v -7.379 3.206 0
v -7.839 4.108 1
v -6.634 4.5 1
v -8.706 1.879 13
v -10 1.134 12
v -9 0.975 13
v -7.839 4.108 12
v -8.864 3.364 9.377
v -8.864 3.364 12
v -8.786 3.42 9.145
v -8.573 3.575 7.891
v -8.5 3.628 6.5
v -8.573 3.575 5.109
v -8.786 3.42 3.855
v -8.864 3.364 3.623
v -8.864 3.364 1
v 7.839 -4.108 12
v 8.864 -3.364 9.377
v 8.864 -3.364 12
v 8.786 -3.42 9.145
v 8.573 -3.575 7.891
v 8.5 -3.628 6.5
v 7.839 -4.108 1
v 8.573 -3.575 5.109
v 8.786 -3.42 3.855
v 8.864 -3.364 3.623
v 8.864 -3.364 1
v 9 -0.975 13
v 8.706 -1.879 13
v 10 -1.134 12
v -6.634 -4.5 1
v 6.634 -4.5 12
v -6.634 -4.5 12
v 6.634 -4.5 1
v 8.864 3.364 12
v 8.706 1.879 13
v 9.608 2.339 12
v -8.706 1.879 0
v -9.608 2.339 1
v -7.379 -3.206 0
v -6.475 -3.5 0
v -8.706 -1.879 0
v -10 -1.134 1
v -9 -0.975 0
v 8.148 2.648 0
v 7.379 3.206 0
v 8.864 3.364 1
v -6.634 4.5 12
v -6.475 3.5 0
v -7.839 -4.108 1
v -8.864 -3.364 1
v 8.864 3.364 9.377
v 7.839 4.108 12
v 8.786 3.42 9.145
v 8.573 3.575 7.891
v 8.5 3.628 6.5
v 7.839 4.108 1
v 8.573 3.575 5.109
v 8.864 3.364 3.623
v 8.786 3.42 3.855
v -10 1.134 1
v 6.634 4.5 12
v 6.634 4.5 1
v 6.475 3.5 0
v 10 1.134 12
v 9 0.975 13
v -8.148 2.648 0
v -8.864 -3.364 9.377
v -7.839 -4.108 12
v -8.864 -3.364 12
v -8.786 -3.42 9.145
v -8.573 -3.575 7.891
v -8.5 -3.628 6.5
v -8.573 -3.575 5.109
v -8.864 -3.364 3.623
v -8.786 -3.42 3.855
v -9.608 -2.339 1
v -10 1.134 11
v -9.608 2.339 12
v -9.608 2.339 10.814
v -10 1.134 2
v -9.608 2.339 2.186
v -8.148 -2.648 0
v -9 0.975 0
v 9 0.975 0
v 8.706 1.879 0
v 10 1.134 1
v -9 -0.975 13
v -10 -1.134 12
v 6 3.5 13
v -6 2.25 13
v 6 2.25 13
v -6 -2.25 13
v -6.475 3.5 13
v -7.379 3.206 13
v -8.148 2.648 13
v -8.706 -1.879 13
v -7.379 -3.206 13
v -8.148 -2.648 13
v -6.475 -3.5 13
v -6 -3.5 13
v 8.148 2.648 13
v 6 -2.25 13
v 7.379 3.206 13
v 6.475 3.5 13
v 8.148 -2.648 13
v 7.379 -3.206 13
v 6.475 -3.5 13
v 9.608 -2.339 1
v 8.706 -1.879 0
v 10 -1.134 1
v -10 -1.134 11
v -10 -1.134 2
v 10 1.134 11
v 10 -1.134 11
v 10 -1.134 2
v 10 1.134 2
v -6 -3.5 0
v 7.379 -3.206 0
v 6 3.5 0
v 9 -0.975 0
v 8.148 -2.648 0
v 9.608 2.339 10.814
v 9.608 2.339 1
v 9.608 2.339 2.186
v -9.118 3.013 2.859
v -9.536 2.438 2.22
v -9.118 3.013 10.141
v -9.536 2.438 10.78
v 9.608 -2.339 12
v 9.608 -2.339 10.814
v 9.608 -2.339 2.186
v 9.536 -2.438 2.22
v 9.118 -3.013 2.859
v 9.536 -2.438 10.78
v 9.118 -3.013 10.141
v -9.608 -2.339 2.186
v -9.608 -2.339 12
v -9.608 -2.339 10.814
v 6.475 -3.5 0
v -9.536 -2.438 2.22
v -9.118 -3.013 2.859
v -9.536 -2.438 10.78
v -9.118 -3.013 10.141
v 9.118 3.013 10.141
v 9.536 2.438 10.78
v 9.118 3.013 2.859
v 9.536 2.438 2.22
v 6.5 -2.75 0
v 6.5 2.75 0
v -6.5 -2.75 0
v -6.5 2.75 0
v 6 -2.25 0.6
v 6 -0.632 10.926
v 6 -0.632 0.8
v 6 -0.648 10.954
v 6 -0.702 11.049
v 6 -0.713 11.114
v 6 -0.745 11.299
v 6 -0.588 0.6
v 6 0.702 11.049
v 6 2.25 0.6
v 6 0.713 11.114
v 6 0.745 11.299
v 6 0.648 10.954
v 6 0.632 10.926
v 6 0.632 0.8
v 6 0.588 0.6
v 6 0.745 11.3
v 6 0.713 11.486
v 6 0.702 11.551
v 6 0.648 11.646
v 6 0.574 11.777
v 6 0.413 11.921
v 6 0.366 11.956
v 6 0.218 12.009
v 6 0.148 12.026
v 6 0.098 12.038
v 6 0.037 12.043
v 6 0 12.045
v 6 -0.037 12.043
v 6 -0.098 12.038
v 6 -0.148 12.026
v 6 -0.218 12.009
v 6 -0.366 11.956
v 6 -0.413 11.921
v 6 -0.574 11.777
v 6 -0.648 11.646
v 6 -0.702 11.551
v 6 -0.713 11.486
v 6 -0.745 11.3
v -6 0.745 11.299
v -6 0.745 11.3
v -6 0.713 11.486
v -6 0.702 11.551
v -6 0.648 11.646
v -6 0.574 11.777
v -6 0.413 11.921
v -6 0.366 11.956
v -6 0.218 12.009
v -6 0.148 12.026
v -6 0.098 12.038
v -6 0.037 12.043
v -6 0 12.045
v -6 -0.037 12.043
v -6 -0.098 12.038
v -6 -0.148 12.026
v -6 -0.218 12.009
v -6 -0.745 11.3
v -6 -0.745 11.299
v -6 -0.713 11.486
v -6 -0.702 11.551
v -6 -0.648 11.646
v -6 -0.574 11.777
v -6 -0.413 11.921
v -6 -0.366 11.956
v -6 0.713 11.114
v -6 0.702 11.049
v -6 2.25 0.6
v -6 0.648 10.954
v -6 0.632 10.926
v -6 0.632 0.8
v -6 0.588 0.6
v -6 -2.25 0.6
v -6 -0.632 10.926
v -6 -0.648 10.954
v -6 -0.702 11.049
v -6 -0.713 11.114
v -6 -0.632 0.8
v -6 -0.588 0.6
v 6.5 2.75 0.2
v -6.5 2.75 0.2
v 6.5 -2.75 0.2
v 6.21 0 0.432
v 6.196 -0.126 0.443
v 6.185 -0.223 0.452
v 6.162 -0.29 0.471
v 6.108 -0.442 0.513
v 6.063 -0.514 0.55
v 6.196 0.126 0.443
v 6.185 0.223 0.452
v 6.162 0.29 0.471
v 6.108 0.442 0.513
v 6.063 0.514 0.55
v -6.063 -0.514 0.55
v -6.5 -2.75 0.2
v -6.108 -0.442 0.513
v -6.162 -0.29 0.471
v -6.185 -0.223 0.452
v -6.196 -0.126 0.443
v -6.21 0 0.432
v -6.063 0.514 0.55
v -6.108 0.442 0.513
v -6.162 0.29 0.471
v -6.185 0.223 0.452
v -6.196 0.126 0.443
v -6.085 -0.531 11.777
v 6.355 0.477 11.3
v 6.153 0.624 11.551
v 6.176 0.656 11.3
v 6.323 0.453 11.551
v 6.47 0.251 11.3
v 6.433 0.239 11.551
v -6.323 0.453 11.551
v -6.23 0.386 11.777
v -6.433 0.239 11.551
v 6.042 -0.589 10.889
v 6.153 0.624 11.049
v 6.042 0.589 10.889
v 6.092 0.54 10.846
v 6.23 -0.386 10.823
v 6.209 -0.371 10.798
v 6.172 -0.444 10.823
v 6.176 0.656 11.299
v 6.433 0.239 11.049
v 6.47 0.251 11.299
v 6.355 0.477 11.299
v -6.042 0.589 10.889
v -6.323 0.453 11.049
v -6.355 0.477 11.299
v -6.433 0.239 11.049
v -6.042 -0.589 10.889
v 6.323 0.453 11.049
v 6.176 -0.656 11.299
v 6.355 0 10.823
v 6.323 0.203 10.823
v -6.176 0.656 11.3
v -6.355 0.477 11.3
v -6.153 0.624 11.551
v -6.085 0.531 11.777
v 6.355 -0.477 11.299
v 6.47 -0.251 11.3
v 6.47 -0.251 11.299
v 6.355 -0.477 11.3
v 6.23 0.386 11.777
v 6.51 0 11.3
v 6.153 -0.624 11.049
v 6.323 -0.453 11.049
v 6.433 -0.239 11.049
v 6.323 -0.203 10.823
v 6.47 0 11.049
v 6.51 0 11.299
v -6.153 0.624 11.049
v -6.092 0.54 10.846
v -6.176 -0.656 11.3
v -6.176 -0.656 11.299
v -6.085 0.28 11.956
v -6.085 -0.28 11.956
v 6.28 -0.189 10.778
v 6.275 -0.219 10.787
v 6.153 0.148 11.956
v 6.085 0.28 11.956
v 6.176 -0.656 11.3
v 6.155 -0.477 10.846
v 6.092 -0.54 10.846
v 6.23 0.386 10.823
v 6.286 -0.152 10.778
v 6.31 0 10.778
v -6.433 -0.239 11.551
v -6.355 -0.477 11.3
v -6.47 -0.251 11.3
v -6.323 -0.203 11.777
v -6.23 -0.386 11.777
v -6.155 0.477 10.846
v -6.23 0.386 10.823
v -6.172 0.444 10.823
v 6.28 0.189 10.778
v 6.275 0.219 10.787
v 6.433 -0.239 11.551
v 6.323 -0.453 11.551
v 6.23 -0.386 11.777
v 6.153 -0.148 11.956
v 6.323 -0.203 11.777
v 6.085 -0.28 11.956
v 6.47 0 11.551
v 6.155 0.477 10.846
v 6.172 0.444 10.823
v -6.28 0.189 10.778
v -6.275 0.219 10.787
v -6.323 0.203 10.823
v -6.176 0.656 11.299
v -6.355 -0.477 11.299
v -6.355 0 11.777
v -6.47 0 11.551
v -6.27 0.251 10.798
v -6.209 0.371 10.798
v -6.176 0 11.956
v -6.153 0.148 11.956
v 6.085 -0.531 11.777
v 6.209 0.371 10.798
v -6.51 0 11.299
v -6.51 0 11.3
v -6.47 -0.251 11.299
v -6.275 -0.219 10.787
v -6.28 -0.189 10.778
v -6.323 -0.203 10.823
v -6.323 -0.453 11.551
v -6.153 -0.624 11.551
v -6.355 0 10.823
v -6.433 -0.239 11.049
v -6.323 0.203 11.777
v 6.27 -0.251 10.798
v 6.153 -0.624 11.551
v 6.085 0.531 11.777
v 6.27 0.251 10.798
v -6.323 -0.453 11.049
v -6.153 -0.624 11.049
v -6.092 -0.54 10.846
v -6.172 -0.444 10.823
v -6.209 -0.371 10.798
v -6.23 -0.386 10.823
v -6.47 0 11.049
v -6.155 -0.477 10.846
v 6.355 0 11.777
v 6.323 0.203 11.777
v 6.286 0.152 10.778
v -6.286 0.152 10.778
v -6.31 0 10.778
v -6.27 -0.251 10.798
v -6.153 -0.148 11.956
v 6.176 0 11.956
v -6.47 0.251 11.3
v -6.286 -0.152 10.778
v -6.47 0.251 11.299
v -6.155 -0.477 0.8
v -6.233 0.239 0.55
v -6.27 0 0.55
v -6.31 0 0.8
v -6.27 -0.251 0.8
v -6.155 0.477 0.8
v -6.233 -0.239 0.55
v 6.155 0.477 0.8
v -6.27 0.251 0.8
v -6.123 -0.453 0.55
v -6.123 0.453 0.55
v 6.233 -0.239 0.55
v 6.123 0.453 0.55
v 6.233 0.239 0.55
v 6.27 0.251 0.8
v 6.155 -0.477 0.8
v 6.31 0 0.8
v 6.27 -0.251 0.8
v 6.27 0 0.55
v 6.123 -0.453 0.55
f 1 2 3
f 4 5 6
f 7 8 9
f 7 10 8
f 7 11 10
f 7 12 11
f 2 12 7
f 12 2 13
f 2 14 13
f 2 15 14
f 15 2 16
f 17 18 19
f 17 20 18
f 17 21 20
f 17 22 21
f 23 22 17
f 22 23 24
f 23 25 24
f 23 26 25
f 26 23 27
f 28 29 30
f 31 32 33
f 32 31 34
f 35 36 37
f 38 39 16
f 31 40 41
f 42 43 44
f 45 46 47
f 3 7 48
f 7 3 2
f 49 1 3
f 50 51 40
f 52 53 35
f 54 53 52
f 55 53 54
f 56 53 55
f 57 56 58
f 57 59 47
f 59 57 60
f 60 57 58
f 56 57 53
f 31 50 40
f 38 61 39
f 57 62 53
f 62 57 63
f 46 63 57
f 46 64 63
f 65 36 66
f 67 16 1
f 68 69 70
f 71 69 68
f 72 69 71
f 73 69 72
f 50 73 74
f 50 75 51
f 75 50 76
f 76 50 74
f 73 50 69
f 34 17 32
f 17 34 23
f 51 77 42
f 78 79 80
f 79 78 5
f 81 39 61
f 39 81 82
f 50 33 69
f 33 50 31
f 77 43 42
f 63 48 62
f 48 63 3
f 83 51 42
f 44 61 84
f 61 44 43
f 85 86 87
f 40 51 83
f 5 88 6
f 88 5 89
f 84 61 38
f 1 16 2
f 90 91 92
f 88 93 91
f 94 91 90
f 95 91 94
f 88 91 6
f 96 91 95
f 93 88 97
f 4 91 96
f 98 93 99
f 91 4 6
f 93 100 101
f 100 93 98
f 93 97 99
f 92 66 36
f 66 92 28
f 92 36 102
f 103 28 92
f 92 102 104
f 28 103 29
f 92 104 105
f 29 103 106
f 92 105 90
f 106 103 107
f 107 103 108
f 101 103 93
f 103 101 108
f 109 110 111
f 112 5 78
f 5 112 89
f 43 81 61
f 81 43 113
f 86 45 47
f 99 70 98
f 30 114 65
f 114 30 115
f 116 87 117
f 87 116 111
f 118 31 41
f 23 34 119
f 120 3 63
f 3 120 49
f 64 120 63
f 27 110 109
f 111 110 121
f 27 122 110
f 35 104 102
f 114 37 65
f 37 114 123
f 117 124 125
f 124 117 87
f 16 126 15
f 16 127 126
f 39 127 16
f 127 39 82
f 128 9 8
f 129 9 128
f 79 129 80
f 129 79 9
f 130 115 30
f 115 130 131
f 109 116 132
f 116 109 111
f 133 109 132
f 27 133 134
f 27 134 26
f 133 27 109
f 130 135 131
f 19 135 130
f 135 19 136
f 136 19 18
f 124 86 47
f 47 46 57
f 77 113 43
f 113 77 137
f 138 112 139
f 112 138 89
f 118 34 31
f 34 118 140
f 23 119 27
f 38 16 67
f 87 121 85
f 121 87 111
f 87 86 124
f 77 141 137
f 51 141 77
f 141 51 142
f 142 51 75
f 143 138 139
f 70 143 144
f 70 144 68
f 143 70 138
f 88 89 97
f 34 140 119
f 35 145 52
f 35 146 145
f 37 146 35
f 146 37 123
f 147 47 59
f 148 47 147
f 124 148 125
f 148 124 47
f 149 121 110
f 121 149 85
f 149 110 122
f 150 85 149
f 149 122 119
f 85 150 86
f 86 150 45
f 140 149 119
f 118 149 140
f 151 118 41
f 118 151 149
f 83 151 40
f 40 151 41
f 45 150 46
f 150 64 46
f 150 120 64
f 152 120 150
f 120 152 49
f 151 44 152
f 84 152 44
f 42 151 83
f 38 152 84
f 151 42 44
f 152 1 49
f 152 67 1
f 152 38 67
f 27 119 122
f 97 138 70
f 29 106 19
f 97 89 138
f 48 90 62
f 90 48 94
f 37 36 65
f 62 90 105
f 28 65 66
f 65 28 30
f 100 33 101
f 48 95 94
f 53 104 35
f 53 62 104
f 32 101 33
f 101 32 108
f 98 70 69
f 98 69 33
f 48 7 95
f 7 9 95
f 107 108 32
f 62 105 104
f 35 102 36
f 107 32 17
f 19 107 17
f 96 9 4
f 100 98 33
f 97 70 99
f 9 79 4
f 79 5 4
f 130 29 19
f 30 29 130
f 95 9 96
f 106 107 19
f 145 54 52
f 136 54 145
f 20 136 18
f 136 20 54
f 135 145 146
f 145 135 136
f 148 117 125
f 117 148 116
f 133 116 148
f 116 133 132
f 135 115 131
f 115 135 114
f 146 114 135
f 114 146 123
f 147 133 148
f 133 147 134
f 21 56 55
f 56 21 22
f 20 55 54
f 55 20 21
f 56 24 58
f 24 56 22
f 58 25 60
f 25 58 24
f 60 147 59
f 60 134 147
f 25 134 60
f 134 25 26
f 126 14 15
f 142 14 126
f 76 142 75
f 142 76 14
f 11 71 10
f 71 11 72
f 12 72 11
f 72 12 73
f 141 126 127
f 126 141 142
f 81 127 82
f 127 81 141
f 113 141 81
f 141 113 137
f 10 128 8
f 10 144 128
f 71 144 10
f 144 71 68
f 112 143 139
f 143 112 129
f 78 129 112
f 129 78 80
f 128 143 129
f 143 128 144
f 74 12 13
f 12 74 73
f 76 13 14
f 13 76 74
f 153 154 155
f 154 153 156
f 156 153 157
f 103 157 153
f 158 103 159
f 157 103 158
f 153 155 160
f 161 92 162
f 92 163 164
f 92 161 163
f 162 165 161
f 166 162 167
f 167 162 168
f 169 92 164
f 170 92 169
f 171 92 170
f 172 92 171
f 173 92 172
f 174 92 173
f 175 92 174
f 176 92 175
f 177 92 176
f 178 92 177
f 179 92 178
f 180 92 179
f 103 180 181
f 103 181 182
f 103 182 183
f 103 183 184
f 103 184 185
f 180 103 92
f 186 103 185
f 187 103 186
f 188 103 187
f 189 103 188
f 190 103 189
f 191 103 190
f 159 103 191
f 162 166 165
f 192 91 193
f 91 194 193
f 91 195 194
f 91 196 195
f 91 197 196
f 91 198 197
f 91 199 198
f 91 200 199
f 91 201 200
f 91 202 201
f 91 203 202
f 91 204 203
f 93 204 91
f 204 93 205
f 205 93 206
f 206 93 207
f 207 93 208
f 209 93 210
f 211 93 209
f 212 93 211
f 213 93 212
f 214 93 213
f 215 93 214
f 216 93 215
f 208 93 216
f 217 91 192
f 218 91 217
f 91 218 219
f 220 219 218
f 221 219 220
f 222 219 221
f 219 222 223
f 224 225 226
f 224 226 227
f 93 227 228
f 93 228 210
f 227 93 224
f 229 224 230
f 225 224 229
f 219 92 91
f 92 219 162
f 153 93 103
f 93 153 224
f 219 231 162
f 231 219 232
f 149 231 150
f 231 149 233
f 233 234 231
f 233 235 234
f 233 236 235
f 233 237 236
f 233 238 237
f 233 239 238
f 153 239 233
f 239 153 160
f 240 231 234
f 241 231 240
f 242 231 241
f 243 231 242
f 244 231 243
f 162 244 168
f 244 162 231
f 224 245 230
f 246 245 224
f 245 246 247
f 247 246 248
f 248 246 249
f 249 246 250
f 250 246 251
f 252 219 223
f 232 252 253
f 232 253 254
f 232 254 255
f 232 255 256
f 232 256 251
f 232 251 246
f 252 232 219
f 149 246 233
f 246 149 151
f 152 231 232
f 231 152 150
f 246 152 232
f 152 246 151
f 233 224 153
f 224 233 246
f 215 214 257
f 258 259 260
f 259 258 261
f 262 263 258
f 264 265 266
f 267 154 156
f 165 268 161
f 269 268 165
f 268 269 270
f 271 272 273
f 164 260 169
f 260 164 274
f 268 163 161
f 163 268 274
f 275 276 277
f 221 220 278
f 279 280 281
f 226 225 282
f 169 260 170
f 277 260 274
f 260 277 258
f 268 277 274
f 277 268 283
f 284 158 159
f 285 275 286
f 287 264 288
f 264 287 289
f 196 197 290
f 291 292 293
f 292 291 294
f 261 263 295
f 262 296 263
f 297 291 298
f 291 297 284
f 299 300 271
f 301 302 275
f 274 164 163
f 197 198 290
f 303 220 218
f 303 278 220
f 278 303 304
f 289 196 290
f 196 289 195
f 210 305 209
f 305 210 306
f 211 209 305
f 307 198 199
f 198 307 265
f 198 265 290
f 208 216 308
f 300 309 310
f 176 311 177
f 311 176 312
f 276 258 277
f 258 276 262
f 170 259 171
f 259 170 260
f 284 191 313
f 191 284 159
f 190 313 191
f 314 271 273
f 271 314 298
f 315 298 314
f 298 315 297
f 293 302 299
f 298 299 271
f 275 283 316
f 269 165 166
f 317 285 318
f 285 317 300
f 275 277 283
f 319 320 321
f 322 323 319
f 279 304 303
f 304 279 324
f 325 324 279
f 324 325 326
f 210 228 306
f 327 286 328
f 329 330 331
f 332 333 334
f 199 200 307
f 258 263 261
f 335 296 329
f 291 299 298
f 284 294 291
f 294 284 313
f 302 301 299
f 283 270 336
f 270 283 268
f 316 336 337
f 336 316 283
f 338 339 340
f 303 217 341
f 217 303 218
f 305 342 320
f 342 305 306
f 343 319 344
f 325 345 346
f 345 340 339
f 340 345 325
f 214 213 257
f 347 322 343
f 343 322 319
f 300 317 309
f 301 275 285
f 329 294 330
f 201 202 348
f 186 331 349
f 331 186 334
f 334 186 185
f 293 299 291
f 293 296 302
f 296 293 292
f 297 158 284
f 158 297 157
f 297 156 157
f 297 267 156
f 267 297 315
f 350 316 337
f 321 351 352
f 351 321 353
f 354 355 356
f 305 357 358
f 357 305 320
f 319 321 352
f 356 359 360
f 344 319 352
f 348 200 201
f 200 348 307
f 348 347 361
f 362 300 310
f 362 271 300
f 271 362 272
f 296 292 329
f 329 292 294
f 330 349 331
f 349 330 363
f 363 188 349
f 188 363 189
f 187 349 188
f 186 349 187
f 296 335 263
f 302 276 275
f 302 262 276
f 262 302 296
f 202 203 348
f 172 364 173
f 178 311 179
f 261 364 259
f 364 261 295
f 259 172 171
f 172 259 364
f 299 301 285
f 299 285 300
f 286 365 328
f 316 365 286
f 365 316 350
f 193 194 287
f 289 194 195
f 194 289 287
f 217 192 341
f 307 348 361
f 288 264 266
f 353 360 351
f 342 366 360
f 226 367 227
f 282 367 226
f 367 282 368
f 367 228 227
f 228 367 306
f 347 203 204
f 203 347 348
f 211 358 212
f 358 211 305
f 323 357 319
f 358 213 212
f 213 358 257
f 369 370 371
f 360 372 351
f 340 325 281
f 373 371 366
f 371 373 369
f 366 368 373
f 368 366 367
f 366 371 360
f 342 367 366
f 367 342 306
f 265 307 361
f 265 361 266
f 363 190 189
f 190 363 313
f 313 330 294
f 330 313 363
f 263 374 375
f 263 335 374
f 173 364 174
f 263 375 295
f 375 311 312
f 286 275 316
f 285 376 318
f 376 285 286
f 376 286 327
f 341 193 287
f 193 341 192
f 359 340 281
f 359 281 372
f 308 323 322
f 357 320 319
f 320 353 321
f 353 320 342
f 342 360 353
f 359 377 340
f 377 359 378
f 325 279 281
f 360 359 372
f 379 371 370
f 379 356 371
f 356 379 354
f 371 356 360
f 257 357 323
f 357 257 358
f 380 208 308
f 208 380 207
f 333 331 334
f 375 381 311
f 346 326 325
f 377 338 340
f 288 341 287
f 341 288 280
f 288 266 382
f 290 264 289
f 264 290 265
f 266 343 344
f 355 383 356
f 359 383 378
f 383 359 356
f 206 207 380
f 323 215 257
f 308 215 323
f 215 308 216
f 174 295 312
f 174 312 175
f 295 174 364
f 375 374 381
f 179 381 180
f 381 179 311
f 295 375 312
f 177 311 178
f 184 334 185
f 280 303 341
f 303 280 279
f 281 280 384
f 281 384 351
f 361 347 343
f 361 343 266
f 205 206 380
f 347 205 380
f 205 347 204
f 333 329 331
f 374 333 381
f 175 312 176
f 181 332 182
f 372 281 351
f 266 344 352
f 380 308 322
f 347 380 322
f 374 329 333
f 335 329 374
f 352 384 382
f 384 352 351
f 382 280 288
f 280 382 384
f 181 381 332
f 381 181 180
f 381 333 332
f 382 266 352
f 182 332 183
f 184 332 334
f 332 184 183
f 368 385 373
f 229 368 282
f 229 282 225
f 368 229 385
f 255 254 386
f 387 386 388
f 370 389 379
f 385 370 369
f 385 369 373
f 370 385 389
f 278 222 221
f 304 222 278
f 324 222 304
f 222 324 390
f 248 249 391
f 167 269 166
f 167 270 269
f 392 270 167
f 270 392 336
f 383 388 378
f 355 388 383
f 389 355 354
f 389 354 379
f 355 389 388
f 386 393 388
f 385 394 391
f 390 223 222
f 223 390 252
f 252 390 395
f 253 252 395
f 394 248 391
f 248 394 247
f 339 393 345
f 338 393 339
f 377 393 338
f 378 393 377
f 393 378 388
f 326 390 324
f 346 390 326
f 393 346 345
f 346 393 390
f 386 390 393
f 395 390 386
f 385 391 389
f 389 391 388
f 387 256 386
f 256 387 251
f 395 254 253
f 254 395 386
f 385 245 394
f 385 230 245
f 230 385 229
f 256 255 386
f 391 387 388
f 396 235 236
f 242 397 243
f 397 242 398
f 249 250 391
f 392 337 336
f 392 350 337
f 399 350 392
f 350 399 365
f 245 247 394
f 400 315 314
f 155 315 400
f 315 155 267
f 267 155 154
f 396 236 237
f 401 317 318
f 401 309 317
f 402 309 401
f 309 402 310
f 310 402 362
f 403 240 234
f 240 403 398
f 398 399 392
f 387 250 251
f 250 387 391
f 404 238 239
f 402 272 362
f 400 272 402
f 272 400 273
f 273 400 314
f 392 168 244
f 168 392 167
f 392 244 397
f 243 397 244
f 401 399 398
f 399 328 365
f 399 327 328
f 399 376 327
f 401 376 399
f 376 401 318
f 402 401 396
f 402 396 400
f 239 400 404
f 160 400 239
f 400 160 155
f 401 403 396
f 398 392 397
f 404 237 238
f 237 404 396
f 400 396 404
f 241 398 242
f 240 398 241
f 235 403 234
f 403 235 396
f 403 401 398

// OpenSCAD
include <BOSL/constants.scad>
use <BOSL/shapes.scad>
use <BOSL/transforms.scad>

$fn=20;

difference() {
    // main mass
    hull() {
        cuboid([18, 7, 13], align=V_UP, fillet=3, edges=EDGES_Z_ALL);
        zmove(1) cuboid([20, 9, 11], align=V_UP, fillet=4, edges=EDGES_Z_ALL);
    }
    
    // grip
    translate([10, 0, 6.5]) zscale(3) xrot(90) cylinder(h=10, d=3, center=true);
    translate([-10, 0, 6.5]) zscale(3) xrot(90) cylinder(h=10, d=3, center=true);
    
    // connector hole
    zmove(-1) upcube([12, 4.5, 13 + 2]);
    hull() {
        upcube([12, 4.5, .6]);
        zmove(-1) upcube([13, 5.5, 1.2]);
    }
    
    //fix in place holes
    zmove(10.5) cuboid([13, 1.6, 1.6], align=V_UP, fillet=.8);
    cuboid([12.6, 1.6, 12], align=V_UP, fillet=.8);
    

}
